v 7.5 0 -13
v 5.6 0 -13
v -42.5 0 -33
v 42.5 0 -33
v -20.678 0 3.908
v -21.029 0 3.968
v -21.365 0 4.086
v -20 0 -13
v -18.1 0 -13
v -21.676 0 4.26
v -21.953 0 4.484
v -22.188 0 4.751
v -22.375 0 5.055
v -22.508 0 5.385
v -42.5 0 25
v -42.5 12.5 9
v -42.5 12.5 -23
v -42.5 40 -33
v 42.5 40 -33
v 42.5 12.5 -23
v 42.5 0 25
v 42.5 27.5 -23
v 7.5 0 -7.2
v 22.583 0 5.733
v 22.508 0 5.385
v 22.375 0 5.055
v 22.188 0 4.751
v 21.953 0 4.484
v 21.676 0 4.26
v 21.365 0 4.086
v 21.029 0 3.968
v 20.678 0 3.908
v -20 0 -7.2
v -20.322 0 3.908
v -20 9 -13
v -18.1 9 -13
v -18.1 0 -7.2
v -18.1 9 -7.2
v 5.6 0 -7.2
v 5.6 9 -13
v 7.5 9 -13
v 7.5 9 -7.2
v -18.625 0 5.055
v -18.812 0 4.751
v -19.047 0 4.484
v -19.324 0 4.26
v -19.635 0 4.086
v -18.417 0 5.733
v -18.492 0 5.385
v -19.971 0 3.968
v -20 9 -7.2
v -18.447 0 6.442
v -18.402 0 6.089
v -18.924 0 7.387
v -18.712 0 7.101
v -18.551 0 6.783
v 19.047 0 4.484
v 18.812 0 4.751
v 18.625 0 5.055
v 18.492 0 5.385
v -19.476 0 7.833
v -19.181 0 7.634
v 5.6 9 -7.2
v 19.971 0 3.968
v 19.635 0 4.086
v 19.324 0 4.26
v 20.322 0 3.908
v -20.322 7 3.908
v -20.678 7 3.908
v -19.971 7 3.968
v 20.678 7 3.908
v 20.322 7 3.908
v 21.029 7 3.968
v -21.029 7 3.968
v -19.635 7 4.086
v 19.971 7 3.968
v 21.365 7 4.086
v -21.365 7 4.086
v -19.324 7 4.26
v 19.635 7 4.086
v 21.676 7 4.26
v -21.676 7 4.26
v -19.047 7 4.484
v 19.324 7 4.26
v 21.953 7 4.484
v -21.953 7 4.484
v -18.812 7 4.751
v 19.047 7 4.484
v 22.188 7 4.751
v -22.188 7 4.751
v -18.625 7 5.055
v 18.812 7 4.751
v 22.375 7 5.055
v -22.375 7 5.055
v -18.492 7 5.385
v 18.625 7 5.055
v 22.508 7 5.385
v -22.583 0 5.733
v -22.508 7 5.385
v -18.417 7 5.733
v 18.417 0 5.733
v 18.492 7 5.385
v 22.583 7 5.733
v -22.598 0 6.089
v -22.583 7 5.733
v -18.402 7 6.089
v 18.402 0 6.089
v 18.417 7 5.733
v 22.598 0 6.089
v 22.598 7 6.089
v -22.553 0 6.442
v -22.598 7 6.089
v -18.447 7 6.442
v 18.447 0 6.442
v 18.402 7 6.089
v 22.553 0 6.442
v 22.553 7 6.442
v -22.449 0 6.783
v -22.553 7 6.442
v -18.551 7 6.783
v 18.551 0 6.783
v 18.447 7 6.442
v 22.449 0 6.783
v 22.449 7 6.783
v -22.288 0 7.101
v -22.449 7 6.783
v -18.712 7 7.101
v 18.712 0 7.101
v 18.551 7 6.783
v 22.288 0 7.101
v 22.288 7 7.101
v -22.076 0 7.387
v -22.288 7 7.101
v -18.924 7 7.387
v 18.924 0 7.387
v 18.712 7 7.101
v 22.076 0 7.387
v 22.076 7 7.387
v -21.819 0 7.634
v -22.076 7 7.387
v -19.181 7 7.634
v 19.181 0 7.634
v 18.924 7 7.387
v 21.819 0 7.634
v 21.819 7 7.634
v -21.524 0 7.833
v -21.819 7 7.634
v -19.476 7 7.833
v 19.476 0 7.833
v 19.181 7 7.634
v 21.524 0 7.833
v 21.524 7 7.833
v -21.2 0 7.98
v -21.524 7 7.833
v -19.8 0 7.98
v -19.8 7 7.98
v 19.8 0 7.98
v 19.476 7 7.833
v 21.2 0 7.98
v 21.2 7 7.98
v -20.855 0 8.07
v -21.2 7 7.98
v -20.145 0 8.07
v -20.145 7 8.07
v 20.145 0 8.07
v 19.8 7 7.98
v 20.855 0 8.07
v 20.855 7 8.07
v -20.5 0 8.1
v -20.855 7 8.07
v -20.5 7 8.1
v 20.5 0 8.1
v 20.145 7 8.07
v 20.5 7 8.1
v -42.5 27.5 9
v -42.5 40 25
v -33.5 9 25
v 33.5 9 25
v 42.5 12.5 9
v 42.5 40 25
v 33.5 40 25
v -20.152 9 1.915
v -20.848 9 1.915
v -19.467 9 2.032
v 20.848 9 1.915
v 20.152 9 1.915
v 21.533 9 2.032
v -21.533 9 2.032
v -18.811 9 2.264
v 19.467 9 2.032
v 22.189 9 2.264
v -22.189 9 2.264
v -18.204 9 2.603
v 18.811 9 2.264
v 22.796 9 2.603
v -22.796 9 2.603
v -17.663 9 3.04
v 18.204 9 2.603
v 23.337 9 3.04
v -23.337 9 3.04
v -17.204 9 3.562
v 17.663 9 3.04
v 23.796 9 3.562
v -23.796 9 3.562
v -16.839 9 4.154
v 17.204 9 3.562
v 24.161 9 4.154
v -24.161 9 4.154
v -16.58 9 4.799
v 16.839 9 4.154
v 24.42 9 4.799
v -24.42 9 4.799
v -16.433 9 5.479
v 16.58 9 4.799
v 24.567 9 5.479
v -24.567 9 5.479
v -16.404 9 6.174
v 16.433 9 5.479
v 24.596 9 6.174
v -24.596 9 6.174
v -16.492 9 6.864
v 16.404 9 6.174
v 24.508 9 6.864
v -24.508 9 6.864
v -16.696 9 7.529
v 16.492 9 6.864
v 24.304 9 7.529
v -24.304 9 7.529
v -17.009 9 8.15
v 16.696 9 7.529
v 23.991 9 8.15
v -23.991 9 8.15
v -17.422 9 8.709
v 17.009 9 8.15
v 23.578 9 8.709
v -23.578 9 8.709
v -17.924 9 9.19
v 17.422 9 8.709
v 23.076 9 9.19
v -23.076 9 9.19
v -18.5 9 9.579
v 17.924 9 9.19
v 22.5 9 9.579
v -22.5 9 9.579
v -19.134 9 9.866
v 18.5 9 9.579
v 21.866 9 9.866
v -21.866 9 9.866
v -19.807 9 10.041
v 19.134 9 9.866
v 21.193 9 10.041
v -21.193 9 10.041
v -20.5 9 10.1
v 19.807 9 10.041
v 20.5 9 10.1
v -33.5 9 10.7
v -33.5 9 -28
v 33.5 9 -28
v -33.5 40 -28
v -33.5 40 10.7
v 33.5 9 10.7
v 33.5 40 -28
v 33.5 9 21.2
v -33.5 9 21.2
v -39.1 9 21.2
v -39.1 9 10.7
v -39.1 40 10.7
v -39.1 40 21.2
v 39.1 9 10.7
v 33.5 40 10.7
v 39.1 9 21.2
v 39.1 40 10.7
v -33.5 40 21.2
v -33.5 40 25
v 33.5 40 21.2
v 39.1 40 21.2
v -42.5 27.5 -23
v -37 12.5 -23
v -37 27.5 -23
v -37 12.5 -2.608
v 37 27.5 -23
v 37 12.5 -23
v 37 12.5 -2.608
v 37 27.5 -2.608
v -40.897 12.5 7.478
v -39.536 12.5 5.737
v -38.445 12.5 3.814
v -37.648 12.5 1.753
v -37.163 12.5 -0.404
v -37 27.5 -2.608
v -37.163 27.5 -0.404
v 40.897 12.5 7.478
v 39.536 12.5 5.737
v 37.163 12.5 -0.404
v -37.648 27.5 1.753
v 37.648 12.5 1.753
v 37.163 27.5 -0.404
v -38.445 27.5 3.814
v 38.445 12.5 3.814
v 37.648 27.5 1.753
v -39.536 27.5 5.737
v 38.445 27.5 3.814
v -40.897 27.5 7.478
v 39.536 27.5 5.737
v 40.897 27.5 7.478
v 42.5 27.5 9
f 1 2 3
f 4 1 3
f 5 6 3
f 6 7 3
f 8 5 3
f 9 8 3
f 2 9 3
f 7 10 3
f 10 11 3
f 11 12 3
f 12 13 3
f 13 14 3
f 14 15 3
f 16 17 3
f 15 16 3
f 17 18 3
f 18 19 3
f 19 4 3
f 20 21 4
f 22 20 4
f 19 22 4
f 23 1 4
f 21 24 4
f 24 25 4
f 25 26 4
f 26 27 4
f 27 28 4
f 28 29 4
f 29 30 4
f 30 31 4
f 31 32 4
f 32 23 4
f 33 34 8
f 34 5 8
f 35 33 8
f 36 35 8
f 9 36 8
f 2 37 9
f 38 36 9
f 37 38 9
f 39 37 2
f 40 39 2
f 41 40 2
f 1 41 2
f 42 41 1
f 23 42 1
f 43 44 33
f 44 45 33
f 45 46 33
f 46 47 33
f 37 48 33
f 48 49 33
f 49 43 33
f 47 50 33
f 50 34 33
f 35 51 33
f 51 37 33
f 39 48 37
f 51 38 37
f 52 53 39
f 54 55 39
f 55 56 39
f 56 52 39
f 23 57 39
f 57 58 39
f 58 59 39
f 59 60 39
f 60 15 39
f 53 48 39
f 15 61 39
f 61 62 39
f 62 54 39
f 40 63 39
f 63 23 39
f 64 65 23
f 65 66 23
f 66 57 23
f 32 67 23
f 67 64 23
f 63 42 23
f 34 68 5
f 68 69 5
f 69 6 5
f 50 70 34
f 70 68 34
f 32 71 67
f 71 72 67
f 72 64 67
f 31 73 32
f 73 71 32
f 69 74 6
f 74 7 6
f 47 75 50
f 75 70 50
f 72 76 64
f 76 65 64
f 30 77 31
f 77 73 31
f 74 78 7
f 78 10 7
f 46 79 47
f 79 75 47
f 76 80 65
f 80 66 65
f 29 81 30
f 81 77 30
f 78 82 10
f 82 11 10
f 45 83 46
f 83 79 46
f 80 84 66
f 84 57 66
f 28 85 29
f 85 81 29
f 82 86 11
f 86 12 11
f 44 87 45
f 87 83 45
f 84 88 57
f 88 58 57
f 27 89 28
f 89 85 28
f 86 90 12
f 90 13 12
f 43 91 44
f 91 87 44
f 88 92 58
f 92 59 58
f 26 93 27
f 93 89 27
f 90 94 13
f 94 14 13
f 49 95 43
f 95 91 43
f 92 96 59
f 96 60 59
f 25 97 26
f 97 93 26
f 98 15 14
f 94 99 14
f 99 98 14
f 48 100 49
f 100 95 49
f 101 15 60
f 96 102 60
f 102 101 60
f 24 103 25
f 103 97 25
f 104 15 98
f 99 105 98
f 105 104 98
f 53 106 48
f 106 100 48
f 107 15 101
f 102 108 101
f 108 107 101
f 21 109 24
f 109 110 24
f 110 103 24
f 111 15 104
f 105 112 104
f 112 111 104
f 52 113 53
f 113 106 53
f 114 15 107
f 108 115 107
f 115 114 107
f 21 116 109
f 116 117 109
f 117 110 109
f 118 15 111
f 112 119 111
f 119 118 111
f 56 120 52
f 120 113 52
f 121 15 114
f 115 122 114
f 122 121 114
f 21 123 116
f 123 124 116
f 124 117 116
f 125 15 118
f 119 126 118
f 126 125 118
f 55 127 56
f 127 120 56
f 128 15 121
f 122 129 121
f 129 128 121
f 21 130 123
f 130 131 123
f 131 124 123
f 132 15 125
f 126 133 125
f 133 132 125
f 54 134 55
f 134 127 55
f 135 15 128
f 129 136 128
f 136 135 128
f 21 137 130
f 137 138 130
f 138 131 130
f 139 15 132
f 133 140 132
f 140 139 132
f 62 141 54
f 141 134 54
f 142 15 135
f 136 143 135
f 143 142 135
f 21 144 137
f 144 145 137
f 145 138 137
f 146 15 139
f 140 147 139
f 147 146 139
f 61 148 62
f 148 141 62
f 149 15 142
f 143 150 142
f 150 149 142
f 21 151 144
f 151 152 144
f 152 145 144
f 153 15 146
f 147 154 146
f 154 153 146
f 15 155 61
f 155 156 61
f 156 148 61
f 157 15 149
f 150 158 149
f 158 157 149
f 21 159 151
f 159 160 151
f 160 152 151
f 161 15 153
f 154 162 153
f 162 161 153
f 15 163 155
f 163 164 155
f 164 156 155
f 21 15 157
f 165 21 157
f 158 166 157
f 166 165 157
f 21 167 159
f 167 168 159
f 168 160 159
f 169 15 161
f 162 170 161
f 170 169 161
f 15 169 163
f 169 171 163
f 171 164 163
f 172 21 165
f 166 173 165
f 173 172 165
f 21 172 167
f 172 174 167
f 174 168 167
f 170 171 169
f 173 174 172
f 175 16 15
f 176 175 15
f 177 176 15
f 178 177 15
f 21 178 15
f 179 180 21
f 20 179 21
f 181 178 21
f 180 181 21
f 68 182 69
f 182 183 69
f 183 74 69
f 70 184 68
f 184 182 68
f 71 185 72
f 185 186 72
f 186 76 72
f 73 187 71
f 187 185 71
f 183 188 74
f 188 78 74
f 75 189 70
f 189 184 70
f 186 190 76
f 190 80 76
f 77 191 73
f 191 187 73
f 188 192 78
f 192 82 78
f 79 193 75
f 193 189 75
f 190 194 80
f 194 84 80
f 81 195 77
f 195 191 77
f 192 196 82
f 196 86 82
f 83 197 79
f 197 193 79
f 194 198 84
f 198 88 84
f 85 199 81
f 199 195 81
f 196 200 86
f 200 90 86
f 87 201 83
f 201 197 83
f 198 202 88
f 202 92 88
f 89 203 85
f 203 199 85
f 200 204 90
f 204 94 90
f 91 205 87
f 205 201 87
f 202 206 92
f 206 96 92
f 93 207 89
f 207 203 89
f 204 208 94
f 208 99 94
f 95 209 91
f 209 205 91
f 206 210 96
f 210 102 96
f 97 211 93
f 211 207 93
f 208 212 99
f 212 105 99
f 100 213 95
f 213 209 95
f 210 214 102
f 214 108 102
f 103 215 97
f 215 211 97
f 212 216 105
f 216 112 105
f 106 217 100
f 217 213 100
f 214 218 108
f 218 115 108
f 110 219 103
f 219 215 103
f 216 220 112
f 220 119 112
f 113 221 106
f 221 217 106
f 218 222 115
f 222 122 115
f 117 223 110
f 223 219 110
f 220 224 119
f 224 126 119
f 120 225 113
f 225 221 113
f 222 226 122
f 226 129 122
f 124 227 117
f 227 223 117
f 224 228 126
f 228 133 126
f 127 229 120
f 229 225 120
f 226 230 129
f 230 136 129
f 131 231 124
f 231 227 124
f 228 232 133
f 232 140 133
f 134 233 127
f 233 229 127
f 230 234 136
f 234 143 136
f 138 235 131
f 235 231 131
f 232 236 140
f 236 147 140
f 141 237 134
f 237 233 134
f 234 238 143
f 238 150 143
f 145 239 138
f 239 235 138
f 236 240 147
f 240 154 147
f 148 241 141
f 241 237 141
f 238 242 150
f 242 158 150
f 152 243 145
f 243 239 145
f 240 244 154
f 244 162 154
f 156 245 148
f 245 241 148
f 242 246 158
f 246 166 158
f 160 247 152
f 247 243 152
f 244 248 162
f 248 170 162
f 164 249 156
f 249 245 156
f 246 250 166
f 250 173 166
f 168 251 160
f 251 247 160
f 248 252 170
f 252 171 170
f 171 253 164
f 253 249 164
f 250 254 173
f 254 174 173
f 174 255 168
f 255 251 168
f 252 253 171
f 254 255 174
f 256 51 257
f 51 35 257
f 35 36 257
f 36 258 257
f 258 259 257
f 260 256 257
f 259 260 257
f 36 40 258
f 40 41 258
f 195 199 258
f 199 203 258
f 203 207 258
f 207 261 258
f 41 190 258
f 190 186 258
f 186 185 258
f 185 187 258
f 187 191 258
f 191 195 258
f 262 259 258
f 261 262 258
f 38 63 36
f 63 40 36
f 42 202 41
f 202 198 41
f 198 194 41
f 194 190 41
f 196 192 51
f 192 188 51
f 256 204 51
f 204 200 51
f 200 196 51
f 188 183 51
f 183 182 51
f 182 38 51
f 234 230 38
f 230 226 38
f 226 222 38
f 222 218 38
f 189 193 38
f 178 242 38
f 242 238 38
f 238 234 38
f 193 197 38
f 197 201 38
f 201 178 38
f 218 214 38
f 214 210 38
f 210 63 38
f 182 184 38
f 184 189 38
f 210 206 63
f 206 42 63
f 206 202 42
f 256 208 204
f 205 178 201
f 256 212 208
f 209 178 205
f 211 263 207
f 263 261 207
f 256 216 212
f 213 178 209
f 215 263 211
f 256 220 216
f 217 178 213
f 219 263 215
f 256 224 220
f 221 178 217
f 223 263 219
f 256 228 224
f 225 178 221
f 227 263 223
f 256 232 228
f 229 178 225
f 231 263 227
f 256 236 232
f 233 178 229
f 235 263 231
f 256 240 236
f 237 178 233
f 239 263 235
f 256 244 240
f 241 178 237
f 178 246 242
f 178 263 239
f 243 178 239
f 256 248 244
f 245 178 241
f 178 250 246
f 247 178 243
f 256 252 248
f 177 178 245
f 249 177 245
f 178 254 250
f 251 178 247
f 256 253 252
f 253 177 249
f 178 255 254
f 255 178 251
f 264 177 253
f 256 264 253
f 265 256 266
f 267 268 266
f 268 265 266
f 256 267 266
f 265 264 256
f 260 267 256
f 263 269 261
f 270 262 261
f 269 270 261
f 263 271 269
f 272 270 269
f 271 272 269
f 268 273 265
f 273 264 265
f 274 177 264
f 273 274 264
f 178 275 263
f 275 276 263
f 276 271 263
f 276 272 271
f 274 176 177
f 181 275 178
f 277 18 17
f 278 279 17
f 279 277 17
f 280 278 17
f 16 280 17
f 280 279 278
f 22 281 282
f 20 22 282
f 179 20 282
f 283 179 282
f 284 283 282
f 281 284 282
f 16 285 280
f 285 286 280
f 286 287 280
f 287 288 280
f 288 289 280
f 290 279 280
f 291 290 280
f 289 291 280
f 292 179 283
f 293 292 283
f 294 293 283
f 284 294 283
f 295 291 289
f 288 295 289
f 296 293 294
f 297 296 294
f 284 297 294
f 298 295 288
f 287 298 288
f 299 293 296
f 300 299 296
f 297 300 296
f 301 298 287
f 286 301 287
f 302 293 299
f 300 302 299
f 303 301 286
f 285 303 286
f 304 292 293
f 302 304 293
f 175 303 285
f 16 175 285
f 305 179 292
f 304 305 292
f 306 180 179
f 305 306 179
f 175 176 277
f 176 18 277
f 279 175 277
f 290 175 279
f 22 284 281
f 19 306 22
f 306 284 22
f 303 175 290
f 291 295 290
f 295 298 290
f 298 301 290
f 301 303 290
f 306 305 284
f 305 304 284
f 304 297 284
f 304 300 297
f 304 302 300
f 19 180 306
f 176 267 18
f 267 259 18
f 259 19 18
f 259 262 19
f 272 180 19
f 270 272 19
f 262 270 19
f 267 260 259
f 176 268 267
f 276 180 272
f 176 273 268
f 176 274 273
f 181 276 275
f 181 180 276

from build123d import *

# Parameters (mm, degrees)
SKETCH1_W                                         = 91
SKETCH1_H                                         = 70
BOSS_EXTRUDE1_DEPTH                               = 9
BOSS_EXTRUDE2_DEPTH                               = 31
SKETCH3_W                                         = 5.6
SKETCH3_H                                         = 10.5
CUT_EXTRUDE1_DEPTH                                = 31
SKETCH4_W                                         = 4.7
SKETCH4_H                                         = 4.9
BOSS_EXTRUDE3_DEPTH                               = 18.5
FILLET1_R                                         = 2
SKETCH5_W                                         = 1.9
SKETCH5_H                                         = 5.8
CUT_EXTRUDE2_DEPTH                                = 19
CSK_FOR_M3_5_FLAT_HEAD_MACHINE_SCREW1_D           = 4.2
CSK_FOR_M3_5_FLAT_HEAD_MACHINE_SCREW1_CSINK_D     = 8.2
CSK_FOR_M3_5_FLAT_HEAD_MACHINE_SCREW1_CSINK_ANGLE = 90
SKETCH11_W                                        = 101.27142764
SKETCH11_H                                        = 82.667879483
SKETCH11_W_2                                      = 85
SKETCH11_H_2                                      = 73.983129472
CUT_EXTRUDE4_DEPTH                                = 49
SKETCH12_W                                        = 32
SKETCH12_H                                        = 15
CUT_EXTRUDE5_DEPTH                                = 5.5
FILLET3_R                                         = 15
FILLET3_OF_MIRROR1_R                              = 15
SKETCH13_W                                        = 85
SKETCH13_H                                        = 10
CUT_EXTRUDE6_DEPTH                                = 53
SKETCH14_W                                        = 23
SKETCH14_H                                        = 31
CUT_EXTRUDE7_DEPTH                                = 10


with BuildPart() as part:
    # Sketch1 → Boss-Extrude1 (new body)
    with BuildSketch(Plane(origin=(0, 0, 0), x_dir=(1, 0, 0), z_dir=(0, 1, 0))):
        Rectangle(SKETCH1_W, SKETCH1_H)
    extrude(amount=BOSS_EXTRUDE1_DEPTH)

    # Sketch2 → Boss-Extrude2 (add)
    with BuildSketch(Plane(origin=(0, 9, 0), x_dir=(1, 0, 0), z_dir=(0, 1, 0))):
        Polygon((-33.5, -35), (-33.5, 28), (33.5, 28), (33.5, -35), (45.5, -35), (45.5, 35), (-45.5, 35), (-45.5, -35), align=None)
    extrude(amount=BOSS_EXTRUDE2_DEPTH)

    # Sketch3 → Cut-Extrude1 (cut)
    with BuildSketch(Plane(origin=(0, 40, 0), x_dir=(1, 0, 0), z_dir=(0, 1, 0))):
        with Locations((-36.3, -15.95)):
            Rectangle(SKETCH3_W, SKETCH3_H)
        with Locations((36.3, -15.95)):
            Rectangle(SKETCH3_W, SKETCH3_H)
    extrude(amount=-CUT_EXTRUDE1_DEPTH, mode=Mode.SUBTRACT)

    # Sketch4 → Boss-Extrude3 (add)
    with BuildSketch(Plane(origin=(0, 9, 0), x_dir=(1, 0, 0), z_dir=(0, 1, 0))):
        with Locations((-7.15, 25.55)):
            Rectangle(SKETCH4_W, SKETCH4_H)
        with Locations((7.15, 25.55)):
            Rectangle(SKETCH4_W, SKETCH4_H)
    extrude(amount=BOSS_EXTRUDE3_DEPTH)

    # Fillet1
    fillet1_edges = [part.edges().sort_by_distance(p)[0] for p in [
        (-9.5, 27.5, -25.55),
        (-4.8, 27.5, -25.55),
        (4.8, 27.5, -25.55),
        (9.5, 27.5, -25.55),
    ]]
    fillet(fillet1_edges, radius=FILLET1_R)

    # Sketch5 → Cut-Extrude2 (cut)
    with BuildSketch(Plane(origin=(0, 9, 0), x_dir=(1, 0, 0), z_dir=(0, 1, 0))):
        with Locations((-19.05, 10.1)):
            Rectangle(SKETCH5_W, SKETCH5_H)
        with Locations((6.55, 10.1)):
            Rectangle(SKETCH5_W, SKETCH5_H)
    extrude(amount=-CUT_EXTRUDE2_DEPTH, mode=Mode.SUBTRACT)

    # CSK for M3.5 Flat Head Machine Screw1 (through all)
    with Locations(Plane(origin=(-20.5, 9, 6), x_dir=(0, 0, 1), z_dir=(0, 1, 0))):
        with Locations((0, 0), (0, 41)):
            CounterSinkHole(CSK_FOR_M3_5_FLAT_HEAD_MACHINE_SCREW1_D / 2, CSK_FOR_M3_5_FLAT_HEAD_MACHINE_SCREW1_CSINK_D / 2, counter_sink_angle=CSK_FOR_M3_5_FLAT_HEAD_MACHINE_SCREW1_CSINK_ANGLE)

    # Sketch11 → Cut-Extrude4 (cut)
    with BuildSketch(Plane(origin=(0, 40, 0), x_dir=(1, 0, 0), z_dir=(0, 1, 0))):
        with Locations((-0.171320914, -3.126256715)):
            Rectangle(SKETCH11_W, SKETCH11_H)
        with Locations((0, -3.991564736)):
            Rectangle(SKETCH11_W_2, SKETCH11_H_2, mode=Mode.SUBTRACT)
    extrude(amount=-CUT_EXTRUDE4_DEPTH, mode=Mode.SUBTRACT)

    # Sketch12 → Cut-Extrude5 (cut)
    with BuildSketch(Plane.ZY.offset(42.5)):
        with Locations((-7, 20)):
            Rectangle(SKETCH12_W, SKETCH12_H)
    cut_extrude5 = extrude(amount=-CUT_EXTRUDE5_DEPTH, mode=Mode.SUBTRACT)

    # Fillet3
    # the kernel refuses this fillet: 15 mm, written as the material it adds along each edge
    with BuildSketch(Plane(origin=(-37, 27.5, 9), x_dir=(-1, 0, 0), z_dir=(0, -1, 0))) as fillet3_piece_1:
        with BuildLine():
            CenterArc((15, 11.608186766), FILLET3_R, 180, 50.703519761)
            Line((0, 11.608186766), (-0.3, 11.608186766))
            Line((-0.3, 11.608186766), (-0.3, 0))
            Line((-0.3, 0), (0, -0.3))
            ThreePointArc((0, -0.3), (2.75, -0.3), (5.31, -0.232163735))
            Line((5.31, -0.232163735), (5.5, 0))
        make_face()
    extrude(amount=15)

    # Mirror1: Cut-Extrude5 across plane
    add(cut_extrude5.mirror(Plane(origin=(0, 0, 0), x_dir=(0, 0, 1), z_dir=(1, 0, 0))), mode=Mode.SUBTRACT)

    # Fillet3 of Mirror1
    # the kernel refuses this fillet: 15 mm, written as the material it adds along each edge
    with BuildSketch(Plane(origin=(37, 27.5, 9), x_dir=(1, 0, 0), z_dir=(0, -1, 0))) as fillet3_of_mirror1_piece_1:
        with BuildLine():
            CenterArc((15, -11.608186766), FILLET3_OF_MIRROR1_R, 129.296480239, 50.703519761)
            Line((0, -11.608186766), (-0.3, -11.608186766))
            Line((-0.3, -11.608186766), (-0.3, 0))
            Line((-0.3, 0), (0, 0.3))
            ThreePointArc((0, 0.3), (2.75, 0.3), (5.31, 0.232163735))
            Line((5.31, 0.232163735), (5.5, 0))
        make_face()
    extrude(amount=15)

    # Sketch13 → Cut-Extrude6 (cut)
    with BuildSketch(Plane(origin=(0, 40, 0), x_dir=(1, 0, 0), z_dir=(0, 1, 0))):
        with Locations((0, -30)):
            Rectangle(SKETCH13_W, SKETCH13_H)
    extrude(amount=-CUT_EXTRUDE6_DEPTH, mode=Mode.SUBTRACT)

    # Sketch14 → Cut-Extrude7 (cut)
    with BuildSketch(Plane.XY.offset(-28)):
        with Locations((-1.5, 24.5)):
            Rectangle(SKETCH14_W, SKETCH14_H)
    extrude(amount=CUT_EXTRUDE7_DEPTH, mode=Mode.SUBTRACT)


solid = part.part
